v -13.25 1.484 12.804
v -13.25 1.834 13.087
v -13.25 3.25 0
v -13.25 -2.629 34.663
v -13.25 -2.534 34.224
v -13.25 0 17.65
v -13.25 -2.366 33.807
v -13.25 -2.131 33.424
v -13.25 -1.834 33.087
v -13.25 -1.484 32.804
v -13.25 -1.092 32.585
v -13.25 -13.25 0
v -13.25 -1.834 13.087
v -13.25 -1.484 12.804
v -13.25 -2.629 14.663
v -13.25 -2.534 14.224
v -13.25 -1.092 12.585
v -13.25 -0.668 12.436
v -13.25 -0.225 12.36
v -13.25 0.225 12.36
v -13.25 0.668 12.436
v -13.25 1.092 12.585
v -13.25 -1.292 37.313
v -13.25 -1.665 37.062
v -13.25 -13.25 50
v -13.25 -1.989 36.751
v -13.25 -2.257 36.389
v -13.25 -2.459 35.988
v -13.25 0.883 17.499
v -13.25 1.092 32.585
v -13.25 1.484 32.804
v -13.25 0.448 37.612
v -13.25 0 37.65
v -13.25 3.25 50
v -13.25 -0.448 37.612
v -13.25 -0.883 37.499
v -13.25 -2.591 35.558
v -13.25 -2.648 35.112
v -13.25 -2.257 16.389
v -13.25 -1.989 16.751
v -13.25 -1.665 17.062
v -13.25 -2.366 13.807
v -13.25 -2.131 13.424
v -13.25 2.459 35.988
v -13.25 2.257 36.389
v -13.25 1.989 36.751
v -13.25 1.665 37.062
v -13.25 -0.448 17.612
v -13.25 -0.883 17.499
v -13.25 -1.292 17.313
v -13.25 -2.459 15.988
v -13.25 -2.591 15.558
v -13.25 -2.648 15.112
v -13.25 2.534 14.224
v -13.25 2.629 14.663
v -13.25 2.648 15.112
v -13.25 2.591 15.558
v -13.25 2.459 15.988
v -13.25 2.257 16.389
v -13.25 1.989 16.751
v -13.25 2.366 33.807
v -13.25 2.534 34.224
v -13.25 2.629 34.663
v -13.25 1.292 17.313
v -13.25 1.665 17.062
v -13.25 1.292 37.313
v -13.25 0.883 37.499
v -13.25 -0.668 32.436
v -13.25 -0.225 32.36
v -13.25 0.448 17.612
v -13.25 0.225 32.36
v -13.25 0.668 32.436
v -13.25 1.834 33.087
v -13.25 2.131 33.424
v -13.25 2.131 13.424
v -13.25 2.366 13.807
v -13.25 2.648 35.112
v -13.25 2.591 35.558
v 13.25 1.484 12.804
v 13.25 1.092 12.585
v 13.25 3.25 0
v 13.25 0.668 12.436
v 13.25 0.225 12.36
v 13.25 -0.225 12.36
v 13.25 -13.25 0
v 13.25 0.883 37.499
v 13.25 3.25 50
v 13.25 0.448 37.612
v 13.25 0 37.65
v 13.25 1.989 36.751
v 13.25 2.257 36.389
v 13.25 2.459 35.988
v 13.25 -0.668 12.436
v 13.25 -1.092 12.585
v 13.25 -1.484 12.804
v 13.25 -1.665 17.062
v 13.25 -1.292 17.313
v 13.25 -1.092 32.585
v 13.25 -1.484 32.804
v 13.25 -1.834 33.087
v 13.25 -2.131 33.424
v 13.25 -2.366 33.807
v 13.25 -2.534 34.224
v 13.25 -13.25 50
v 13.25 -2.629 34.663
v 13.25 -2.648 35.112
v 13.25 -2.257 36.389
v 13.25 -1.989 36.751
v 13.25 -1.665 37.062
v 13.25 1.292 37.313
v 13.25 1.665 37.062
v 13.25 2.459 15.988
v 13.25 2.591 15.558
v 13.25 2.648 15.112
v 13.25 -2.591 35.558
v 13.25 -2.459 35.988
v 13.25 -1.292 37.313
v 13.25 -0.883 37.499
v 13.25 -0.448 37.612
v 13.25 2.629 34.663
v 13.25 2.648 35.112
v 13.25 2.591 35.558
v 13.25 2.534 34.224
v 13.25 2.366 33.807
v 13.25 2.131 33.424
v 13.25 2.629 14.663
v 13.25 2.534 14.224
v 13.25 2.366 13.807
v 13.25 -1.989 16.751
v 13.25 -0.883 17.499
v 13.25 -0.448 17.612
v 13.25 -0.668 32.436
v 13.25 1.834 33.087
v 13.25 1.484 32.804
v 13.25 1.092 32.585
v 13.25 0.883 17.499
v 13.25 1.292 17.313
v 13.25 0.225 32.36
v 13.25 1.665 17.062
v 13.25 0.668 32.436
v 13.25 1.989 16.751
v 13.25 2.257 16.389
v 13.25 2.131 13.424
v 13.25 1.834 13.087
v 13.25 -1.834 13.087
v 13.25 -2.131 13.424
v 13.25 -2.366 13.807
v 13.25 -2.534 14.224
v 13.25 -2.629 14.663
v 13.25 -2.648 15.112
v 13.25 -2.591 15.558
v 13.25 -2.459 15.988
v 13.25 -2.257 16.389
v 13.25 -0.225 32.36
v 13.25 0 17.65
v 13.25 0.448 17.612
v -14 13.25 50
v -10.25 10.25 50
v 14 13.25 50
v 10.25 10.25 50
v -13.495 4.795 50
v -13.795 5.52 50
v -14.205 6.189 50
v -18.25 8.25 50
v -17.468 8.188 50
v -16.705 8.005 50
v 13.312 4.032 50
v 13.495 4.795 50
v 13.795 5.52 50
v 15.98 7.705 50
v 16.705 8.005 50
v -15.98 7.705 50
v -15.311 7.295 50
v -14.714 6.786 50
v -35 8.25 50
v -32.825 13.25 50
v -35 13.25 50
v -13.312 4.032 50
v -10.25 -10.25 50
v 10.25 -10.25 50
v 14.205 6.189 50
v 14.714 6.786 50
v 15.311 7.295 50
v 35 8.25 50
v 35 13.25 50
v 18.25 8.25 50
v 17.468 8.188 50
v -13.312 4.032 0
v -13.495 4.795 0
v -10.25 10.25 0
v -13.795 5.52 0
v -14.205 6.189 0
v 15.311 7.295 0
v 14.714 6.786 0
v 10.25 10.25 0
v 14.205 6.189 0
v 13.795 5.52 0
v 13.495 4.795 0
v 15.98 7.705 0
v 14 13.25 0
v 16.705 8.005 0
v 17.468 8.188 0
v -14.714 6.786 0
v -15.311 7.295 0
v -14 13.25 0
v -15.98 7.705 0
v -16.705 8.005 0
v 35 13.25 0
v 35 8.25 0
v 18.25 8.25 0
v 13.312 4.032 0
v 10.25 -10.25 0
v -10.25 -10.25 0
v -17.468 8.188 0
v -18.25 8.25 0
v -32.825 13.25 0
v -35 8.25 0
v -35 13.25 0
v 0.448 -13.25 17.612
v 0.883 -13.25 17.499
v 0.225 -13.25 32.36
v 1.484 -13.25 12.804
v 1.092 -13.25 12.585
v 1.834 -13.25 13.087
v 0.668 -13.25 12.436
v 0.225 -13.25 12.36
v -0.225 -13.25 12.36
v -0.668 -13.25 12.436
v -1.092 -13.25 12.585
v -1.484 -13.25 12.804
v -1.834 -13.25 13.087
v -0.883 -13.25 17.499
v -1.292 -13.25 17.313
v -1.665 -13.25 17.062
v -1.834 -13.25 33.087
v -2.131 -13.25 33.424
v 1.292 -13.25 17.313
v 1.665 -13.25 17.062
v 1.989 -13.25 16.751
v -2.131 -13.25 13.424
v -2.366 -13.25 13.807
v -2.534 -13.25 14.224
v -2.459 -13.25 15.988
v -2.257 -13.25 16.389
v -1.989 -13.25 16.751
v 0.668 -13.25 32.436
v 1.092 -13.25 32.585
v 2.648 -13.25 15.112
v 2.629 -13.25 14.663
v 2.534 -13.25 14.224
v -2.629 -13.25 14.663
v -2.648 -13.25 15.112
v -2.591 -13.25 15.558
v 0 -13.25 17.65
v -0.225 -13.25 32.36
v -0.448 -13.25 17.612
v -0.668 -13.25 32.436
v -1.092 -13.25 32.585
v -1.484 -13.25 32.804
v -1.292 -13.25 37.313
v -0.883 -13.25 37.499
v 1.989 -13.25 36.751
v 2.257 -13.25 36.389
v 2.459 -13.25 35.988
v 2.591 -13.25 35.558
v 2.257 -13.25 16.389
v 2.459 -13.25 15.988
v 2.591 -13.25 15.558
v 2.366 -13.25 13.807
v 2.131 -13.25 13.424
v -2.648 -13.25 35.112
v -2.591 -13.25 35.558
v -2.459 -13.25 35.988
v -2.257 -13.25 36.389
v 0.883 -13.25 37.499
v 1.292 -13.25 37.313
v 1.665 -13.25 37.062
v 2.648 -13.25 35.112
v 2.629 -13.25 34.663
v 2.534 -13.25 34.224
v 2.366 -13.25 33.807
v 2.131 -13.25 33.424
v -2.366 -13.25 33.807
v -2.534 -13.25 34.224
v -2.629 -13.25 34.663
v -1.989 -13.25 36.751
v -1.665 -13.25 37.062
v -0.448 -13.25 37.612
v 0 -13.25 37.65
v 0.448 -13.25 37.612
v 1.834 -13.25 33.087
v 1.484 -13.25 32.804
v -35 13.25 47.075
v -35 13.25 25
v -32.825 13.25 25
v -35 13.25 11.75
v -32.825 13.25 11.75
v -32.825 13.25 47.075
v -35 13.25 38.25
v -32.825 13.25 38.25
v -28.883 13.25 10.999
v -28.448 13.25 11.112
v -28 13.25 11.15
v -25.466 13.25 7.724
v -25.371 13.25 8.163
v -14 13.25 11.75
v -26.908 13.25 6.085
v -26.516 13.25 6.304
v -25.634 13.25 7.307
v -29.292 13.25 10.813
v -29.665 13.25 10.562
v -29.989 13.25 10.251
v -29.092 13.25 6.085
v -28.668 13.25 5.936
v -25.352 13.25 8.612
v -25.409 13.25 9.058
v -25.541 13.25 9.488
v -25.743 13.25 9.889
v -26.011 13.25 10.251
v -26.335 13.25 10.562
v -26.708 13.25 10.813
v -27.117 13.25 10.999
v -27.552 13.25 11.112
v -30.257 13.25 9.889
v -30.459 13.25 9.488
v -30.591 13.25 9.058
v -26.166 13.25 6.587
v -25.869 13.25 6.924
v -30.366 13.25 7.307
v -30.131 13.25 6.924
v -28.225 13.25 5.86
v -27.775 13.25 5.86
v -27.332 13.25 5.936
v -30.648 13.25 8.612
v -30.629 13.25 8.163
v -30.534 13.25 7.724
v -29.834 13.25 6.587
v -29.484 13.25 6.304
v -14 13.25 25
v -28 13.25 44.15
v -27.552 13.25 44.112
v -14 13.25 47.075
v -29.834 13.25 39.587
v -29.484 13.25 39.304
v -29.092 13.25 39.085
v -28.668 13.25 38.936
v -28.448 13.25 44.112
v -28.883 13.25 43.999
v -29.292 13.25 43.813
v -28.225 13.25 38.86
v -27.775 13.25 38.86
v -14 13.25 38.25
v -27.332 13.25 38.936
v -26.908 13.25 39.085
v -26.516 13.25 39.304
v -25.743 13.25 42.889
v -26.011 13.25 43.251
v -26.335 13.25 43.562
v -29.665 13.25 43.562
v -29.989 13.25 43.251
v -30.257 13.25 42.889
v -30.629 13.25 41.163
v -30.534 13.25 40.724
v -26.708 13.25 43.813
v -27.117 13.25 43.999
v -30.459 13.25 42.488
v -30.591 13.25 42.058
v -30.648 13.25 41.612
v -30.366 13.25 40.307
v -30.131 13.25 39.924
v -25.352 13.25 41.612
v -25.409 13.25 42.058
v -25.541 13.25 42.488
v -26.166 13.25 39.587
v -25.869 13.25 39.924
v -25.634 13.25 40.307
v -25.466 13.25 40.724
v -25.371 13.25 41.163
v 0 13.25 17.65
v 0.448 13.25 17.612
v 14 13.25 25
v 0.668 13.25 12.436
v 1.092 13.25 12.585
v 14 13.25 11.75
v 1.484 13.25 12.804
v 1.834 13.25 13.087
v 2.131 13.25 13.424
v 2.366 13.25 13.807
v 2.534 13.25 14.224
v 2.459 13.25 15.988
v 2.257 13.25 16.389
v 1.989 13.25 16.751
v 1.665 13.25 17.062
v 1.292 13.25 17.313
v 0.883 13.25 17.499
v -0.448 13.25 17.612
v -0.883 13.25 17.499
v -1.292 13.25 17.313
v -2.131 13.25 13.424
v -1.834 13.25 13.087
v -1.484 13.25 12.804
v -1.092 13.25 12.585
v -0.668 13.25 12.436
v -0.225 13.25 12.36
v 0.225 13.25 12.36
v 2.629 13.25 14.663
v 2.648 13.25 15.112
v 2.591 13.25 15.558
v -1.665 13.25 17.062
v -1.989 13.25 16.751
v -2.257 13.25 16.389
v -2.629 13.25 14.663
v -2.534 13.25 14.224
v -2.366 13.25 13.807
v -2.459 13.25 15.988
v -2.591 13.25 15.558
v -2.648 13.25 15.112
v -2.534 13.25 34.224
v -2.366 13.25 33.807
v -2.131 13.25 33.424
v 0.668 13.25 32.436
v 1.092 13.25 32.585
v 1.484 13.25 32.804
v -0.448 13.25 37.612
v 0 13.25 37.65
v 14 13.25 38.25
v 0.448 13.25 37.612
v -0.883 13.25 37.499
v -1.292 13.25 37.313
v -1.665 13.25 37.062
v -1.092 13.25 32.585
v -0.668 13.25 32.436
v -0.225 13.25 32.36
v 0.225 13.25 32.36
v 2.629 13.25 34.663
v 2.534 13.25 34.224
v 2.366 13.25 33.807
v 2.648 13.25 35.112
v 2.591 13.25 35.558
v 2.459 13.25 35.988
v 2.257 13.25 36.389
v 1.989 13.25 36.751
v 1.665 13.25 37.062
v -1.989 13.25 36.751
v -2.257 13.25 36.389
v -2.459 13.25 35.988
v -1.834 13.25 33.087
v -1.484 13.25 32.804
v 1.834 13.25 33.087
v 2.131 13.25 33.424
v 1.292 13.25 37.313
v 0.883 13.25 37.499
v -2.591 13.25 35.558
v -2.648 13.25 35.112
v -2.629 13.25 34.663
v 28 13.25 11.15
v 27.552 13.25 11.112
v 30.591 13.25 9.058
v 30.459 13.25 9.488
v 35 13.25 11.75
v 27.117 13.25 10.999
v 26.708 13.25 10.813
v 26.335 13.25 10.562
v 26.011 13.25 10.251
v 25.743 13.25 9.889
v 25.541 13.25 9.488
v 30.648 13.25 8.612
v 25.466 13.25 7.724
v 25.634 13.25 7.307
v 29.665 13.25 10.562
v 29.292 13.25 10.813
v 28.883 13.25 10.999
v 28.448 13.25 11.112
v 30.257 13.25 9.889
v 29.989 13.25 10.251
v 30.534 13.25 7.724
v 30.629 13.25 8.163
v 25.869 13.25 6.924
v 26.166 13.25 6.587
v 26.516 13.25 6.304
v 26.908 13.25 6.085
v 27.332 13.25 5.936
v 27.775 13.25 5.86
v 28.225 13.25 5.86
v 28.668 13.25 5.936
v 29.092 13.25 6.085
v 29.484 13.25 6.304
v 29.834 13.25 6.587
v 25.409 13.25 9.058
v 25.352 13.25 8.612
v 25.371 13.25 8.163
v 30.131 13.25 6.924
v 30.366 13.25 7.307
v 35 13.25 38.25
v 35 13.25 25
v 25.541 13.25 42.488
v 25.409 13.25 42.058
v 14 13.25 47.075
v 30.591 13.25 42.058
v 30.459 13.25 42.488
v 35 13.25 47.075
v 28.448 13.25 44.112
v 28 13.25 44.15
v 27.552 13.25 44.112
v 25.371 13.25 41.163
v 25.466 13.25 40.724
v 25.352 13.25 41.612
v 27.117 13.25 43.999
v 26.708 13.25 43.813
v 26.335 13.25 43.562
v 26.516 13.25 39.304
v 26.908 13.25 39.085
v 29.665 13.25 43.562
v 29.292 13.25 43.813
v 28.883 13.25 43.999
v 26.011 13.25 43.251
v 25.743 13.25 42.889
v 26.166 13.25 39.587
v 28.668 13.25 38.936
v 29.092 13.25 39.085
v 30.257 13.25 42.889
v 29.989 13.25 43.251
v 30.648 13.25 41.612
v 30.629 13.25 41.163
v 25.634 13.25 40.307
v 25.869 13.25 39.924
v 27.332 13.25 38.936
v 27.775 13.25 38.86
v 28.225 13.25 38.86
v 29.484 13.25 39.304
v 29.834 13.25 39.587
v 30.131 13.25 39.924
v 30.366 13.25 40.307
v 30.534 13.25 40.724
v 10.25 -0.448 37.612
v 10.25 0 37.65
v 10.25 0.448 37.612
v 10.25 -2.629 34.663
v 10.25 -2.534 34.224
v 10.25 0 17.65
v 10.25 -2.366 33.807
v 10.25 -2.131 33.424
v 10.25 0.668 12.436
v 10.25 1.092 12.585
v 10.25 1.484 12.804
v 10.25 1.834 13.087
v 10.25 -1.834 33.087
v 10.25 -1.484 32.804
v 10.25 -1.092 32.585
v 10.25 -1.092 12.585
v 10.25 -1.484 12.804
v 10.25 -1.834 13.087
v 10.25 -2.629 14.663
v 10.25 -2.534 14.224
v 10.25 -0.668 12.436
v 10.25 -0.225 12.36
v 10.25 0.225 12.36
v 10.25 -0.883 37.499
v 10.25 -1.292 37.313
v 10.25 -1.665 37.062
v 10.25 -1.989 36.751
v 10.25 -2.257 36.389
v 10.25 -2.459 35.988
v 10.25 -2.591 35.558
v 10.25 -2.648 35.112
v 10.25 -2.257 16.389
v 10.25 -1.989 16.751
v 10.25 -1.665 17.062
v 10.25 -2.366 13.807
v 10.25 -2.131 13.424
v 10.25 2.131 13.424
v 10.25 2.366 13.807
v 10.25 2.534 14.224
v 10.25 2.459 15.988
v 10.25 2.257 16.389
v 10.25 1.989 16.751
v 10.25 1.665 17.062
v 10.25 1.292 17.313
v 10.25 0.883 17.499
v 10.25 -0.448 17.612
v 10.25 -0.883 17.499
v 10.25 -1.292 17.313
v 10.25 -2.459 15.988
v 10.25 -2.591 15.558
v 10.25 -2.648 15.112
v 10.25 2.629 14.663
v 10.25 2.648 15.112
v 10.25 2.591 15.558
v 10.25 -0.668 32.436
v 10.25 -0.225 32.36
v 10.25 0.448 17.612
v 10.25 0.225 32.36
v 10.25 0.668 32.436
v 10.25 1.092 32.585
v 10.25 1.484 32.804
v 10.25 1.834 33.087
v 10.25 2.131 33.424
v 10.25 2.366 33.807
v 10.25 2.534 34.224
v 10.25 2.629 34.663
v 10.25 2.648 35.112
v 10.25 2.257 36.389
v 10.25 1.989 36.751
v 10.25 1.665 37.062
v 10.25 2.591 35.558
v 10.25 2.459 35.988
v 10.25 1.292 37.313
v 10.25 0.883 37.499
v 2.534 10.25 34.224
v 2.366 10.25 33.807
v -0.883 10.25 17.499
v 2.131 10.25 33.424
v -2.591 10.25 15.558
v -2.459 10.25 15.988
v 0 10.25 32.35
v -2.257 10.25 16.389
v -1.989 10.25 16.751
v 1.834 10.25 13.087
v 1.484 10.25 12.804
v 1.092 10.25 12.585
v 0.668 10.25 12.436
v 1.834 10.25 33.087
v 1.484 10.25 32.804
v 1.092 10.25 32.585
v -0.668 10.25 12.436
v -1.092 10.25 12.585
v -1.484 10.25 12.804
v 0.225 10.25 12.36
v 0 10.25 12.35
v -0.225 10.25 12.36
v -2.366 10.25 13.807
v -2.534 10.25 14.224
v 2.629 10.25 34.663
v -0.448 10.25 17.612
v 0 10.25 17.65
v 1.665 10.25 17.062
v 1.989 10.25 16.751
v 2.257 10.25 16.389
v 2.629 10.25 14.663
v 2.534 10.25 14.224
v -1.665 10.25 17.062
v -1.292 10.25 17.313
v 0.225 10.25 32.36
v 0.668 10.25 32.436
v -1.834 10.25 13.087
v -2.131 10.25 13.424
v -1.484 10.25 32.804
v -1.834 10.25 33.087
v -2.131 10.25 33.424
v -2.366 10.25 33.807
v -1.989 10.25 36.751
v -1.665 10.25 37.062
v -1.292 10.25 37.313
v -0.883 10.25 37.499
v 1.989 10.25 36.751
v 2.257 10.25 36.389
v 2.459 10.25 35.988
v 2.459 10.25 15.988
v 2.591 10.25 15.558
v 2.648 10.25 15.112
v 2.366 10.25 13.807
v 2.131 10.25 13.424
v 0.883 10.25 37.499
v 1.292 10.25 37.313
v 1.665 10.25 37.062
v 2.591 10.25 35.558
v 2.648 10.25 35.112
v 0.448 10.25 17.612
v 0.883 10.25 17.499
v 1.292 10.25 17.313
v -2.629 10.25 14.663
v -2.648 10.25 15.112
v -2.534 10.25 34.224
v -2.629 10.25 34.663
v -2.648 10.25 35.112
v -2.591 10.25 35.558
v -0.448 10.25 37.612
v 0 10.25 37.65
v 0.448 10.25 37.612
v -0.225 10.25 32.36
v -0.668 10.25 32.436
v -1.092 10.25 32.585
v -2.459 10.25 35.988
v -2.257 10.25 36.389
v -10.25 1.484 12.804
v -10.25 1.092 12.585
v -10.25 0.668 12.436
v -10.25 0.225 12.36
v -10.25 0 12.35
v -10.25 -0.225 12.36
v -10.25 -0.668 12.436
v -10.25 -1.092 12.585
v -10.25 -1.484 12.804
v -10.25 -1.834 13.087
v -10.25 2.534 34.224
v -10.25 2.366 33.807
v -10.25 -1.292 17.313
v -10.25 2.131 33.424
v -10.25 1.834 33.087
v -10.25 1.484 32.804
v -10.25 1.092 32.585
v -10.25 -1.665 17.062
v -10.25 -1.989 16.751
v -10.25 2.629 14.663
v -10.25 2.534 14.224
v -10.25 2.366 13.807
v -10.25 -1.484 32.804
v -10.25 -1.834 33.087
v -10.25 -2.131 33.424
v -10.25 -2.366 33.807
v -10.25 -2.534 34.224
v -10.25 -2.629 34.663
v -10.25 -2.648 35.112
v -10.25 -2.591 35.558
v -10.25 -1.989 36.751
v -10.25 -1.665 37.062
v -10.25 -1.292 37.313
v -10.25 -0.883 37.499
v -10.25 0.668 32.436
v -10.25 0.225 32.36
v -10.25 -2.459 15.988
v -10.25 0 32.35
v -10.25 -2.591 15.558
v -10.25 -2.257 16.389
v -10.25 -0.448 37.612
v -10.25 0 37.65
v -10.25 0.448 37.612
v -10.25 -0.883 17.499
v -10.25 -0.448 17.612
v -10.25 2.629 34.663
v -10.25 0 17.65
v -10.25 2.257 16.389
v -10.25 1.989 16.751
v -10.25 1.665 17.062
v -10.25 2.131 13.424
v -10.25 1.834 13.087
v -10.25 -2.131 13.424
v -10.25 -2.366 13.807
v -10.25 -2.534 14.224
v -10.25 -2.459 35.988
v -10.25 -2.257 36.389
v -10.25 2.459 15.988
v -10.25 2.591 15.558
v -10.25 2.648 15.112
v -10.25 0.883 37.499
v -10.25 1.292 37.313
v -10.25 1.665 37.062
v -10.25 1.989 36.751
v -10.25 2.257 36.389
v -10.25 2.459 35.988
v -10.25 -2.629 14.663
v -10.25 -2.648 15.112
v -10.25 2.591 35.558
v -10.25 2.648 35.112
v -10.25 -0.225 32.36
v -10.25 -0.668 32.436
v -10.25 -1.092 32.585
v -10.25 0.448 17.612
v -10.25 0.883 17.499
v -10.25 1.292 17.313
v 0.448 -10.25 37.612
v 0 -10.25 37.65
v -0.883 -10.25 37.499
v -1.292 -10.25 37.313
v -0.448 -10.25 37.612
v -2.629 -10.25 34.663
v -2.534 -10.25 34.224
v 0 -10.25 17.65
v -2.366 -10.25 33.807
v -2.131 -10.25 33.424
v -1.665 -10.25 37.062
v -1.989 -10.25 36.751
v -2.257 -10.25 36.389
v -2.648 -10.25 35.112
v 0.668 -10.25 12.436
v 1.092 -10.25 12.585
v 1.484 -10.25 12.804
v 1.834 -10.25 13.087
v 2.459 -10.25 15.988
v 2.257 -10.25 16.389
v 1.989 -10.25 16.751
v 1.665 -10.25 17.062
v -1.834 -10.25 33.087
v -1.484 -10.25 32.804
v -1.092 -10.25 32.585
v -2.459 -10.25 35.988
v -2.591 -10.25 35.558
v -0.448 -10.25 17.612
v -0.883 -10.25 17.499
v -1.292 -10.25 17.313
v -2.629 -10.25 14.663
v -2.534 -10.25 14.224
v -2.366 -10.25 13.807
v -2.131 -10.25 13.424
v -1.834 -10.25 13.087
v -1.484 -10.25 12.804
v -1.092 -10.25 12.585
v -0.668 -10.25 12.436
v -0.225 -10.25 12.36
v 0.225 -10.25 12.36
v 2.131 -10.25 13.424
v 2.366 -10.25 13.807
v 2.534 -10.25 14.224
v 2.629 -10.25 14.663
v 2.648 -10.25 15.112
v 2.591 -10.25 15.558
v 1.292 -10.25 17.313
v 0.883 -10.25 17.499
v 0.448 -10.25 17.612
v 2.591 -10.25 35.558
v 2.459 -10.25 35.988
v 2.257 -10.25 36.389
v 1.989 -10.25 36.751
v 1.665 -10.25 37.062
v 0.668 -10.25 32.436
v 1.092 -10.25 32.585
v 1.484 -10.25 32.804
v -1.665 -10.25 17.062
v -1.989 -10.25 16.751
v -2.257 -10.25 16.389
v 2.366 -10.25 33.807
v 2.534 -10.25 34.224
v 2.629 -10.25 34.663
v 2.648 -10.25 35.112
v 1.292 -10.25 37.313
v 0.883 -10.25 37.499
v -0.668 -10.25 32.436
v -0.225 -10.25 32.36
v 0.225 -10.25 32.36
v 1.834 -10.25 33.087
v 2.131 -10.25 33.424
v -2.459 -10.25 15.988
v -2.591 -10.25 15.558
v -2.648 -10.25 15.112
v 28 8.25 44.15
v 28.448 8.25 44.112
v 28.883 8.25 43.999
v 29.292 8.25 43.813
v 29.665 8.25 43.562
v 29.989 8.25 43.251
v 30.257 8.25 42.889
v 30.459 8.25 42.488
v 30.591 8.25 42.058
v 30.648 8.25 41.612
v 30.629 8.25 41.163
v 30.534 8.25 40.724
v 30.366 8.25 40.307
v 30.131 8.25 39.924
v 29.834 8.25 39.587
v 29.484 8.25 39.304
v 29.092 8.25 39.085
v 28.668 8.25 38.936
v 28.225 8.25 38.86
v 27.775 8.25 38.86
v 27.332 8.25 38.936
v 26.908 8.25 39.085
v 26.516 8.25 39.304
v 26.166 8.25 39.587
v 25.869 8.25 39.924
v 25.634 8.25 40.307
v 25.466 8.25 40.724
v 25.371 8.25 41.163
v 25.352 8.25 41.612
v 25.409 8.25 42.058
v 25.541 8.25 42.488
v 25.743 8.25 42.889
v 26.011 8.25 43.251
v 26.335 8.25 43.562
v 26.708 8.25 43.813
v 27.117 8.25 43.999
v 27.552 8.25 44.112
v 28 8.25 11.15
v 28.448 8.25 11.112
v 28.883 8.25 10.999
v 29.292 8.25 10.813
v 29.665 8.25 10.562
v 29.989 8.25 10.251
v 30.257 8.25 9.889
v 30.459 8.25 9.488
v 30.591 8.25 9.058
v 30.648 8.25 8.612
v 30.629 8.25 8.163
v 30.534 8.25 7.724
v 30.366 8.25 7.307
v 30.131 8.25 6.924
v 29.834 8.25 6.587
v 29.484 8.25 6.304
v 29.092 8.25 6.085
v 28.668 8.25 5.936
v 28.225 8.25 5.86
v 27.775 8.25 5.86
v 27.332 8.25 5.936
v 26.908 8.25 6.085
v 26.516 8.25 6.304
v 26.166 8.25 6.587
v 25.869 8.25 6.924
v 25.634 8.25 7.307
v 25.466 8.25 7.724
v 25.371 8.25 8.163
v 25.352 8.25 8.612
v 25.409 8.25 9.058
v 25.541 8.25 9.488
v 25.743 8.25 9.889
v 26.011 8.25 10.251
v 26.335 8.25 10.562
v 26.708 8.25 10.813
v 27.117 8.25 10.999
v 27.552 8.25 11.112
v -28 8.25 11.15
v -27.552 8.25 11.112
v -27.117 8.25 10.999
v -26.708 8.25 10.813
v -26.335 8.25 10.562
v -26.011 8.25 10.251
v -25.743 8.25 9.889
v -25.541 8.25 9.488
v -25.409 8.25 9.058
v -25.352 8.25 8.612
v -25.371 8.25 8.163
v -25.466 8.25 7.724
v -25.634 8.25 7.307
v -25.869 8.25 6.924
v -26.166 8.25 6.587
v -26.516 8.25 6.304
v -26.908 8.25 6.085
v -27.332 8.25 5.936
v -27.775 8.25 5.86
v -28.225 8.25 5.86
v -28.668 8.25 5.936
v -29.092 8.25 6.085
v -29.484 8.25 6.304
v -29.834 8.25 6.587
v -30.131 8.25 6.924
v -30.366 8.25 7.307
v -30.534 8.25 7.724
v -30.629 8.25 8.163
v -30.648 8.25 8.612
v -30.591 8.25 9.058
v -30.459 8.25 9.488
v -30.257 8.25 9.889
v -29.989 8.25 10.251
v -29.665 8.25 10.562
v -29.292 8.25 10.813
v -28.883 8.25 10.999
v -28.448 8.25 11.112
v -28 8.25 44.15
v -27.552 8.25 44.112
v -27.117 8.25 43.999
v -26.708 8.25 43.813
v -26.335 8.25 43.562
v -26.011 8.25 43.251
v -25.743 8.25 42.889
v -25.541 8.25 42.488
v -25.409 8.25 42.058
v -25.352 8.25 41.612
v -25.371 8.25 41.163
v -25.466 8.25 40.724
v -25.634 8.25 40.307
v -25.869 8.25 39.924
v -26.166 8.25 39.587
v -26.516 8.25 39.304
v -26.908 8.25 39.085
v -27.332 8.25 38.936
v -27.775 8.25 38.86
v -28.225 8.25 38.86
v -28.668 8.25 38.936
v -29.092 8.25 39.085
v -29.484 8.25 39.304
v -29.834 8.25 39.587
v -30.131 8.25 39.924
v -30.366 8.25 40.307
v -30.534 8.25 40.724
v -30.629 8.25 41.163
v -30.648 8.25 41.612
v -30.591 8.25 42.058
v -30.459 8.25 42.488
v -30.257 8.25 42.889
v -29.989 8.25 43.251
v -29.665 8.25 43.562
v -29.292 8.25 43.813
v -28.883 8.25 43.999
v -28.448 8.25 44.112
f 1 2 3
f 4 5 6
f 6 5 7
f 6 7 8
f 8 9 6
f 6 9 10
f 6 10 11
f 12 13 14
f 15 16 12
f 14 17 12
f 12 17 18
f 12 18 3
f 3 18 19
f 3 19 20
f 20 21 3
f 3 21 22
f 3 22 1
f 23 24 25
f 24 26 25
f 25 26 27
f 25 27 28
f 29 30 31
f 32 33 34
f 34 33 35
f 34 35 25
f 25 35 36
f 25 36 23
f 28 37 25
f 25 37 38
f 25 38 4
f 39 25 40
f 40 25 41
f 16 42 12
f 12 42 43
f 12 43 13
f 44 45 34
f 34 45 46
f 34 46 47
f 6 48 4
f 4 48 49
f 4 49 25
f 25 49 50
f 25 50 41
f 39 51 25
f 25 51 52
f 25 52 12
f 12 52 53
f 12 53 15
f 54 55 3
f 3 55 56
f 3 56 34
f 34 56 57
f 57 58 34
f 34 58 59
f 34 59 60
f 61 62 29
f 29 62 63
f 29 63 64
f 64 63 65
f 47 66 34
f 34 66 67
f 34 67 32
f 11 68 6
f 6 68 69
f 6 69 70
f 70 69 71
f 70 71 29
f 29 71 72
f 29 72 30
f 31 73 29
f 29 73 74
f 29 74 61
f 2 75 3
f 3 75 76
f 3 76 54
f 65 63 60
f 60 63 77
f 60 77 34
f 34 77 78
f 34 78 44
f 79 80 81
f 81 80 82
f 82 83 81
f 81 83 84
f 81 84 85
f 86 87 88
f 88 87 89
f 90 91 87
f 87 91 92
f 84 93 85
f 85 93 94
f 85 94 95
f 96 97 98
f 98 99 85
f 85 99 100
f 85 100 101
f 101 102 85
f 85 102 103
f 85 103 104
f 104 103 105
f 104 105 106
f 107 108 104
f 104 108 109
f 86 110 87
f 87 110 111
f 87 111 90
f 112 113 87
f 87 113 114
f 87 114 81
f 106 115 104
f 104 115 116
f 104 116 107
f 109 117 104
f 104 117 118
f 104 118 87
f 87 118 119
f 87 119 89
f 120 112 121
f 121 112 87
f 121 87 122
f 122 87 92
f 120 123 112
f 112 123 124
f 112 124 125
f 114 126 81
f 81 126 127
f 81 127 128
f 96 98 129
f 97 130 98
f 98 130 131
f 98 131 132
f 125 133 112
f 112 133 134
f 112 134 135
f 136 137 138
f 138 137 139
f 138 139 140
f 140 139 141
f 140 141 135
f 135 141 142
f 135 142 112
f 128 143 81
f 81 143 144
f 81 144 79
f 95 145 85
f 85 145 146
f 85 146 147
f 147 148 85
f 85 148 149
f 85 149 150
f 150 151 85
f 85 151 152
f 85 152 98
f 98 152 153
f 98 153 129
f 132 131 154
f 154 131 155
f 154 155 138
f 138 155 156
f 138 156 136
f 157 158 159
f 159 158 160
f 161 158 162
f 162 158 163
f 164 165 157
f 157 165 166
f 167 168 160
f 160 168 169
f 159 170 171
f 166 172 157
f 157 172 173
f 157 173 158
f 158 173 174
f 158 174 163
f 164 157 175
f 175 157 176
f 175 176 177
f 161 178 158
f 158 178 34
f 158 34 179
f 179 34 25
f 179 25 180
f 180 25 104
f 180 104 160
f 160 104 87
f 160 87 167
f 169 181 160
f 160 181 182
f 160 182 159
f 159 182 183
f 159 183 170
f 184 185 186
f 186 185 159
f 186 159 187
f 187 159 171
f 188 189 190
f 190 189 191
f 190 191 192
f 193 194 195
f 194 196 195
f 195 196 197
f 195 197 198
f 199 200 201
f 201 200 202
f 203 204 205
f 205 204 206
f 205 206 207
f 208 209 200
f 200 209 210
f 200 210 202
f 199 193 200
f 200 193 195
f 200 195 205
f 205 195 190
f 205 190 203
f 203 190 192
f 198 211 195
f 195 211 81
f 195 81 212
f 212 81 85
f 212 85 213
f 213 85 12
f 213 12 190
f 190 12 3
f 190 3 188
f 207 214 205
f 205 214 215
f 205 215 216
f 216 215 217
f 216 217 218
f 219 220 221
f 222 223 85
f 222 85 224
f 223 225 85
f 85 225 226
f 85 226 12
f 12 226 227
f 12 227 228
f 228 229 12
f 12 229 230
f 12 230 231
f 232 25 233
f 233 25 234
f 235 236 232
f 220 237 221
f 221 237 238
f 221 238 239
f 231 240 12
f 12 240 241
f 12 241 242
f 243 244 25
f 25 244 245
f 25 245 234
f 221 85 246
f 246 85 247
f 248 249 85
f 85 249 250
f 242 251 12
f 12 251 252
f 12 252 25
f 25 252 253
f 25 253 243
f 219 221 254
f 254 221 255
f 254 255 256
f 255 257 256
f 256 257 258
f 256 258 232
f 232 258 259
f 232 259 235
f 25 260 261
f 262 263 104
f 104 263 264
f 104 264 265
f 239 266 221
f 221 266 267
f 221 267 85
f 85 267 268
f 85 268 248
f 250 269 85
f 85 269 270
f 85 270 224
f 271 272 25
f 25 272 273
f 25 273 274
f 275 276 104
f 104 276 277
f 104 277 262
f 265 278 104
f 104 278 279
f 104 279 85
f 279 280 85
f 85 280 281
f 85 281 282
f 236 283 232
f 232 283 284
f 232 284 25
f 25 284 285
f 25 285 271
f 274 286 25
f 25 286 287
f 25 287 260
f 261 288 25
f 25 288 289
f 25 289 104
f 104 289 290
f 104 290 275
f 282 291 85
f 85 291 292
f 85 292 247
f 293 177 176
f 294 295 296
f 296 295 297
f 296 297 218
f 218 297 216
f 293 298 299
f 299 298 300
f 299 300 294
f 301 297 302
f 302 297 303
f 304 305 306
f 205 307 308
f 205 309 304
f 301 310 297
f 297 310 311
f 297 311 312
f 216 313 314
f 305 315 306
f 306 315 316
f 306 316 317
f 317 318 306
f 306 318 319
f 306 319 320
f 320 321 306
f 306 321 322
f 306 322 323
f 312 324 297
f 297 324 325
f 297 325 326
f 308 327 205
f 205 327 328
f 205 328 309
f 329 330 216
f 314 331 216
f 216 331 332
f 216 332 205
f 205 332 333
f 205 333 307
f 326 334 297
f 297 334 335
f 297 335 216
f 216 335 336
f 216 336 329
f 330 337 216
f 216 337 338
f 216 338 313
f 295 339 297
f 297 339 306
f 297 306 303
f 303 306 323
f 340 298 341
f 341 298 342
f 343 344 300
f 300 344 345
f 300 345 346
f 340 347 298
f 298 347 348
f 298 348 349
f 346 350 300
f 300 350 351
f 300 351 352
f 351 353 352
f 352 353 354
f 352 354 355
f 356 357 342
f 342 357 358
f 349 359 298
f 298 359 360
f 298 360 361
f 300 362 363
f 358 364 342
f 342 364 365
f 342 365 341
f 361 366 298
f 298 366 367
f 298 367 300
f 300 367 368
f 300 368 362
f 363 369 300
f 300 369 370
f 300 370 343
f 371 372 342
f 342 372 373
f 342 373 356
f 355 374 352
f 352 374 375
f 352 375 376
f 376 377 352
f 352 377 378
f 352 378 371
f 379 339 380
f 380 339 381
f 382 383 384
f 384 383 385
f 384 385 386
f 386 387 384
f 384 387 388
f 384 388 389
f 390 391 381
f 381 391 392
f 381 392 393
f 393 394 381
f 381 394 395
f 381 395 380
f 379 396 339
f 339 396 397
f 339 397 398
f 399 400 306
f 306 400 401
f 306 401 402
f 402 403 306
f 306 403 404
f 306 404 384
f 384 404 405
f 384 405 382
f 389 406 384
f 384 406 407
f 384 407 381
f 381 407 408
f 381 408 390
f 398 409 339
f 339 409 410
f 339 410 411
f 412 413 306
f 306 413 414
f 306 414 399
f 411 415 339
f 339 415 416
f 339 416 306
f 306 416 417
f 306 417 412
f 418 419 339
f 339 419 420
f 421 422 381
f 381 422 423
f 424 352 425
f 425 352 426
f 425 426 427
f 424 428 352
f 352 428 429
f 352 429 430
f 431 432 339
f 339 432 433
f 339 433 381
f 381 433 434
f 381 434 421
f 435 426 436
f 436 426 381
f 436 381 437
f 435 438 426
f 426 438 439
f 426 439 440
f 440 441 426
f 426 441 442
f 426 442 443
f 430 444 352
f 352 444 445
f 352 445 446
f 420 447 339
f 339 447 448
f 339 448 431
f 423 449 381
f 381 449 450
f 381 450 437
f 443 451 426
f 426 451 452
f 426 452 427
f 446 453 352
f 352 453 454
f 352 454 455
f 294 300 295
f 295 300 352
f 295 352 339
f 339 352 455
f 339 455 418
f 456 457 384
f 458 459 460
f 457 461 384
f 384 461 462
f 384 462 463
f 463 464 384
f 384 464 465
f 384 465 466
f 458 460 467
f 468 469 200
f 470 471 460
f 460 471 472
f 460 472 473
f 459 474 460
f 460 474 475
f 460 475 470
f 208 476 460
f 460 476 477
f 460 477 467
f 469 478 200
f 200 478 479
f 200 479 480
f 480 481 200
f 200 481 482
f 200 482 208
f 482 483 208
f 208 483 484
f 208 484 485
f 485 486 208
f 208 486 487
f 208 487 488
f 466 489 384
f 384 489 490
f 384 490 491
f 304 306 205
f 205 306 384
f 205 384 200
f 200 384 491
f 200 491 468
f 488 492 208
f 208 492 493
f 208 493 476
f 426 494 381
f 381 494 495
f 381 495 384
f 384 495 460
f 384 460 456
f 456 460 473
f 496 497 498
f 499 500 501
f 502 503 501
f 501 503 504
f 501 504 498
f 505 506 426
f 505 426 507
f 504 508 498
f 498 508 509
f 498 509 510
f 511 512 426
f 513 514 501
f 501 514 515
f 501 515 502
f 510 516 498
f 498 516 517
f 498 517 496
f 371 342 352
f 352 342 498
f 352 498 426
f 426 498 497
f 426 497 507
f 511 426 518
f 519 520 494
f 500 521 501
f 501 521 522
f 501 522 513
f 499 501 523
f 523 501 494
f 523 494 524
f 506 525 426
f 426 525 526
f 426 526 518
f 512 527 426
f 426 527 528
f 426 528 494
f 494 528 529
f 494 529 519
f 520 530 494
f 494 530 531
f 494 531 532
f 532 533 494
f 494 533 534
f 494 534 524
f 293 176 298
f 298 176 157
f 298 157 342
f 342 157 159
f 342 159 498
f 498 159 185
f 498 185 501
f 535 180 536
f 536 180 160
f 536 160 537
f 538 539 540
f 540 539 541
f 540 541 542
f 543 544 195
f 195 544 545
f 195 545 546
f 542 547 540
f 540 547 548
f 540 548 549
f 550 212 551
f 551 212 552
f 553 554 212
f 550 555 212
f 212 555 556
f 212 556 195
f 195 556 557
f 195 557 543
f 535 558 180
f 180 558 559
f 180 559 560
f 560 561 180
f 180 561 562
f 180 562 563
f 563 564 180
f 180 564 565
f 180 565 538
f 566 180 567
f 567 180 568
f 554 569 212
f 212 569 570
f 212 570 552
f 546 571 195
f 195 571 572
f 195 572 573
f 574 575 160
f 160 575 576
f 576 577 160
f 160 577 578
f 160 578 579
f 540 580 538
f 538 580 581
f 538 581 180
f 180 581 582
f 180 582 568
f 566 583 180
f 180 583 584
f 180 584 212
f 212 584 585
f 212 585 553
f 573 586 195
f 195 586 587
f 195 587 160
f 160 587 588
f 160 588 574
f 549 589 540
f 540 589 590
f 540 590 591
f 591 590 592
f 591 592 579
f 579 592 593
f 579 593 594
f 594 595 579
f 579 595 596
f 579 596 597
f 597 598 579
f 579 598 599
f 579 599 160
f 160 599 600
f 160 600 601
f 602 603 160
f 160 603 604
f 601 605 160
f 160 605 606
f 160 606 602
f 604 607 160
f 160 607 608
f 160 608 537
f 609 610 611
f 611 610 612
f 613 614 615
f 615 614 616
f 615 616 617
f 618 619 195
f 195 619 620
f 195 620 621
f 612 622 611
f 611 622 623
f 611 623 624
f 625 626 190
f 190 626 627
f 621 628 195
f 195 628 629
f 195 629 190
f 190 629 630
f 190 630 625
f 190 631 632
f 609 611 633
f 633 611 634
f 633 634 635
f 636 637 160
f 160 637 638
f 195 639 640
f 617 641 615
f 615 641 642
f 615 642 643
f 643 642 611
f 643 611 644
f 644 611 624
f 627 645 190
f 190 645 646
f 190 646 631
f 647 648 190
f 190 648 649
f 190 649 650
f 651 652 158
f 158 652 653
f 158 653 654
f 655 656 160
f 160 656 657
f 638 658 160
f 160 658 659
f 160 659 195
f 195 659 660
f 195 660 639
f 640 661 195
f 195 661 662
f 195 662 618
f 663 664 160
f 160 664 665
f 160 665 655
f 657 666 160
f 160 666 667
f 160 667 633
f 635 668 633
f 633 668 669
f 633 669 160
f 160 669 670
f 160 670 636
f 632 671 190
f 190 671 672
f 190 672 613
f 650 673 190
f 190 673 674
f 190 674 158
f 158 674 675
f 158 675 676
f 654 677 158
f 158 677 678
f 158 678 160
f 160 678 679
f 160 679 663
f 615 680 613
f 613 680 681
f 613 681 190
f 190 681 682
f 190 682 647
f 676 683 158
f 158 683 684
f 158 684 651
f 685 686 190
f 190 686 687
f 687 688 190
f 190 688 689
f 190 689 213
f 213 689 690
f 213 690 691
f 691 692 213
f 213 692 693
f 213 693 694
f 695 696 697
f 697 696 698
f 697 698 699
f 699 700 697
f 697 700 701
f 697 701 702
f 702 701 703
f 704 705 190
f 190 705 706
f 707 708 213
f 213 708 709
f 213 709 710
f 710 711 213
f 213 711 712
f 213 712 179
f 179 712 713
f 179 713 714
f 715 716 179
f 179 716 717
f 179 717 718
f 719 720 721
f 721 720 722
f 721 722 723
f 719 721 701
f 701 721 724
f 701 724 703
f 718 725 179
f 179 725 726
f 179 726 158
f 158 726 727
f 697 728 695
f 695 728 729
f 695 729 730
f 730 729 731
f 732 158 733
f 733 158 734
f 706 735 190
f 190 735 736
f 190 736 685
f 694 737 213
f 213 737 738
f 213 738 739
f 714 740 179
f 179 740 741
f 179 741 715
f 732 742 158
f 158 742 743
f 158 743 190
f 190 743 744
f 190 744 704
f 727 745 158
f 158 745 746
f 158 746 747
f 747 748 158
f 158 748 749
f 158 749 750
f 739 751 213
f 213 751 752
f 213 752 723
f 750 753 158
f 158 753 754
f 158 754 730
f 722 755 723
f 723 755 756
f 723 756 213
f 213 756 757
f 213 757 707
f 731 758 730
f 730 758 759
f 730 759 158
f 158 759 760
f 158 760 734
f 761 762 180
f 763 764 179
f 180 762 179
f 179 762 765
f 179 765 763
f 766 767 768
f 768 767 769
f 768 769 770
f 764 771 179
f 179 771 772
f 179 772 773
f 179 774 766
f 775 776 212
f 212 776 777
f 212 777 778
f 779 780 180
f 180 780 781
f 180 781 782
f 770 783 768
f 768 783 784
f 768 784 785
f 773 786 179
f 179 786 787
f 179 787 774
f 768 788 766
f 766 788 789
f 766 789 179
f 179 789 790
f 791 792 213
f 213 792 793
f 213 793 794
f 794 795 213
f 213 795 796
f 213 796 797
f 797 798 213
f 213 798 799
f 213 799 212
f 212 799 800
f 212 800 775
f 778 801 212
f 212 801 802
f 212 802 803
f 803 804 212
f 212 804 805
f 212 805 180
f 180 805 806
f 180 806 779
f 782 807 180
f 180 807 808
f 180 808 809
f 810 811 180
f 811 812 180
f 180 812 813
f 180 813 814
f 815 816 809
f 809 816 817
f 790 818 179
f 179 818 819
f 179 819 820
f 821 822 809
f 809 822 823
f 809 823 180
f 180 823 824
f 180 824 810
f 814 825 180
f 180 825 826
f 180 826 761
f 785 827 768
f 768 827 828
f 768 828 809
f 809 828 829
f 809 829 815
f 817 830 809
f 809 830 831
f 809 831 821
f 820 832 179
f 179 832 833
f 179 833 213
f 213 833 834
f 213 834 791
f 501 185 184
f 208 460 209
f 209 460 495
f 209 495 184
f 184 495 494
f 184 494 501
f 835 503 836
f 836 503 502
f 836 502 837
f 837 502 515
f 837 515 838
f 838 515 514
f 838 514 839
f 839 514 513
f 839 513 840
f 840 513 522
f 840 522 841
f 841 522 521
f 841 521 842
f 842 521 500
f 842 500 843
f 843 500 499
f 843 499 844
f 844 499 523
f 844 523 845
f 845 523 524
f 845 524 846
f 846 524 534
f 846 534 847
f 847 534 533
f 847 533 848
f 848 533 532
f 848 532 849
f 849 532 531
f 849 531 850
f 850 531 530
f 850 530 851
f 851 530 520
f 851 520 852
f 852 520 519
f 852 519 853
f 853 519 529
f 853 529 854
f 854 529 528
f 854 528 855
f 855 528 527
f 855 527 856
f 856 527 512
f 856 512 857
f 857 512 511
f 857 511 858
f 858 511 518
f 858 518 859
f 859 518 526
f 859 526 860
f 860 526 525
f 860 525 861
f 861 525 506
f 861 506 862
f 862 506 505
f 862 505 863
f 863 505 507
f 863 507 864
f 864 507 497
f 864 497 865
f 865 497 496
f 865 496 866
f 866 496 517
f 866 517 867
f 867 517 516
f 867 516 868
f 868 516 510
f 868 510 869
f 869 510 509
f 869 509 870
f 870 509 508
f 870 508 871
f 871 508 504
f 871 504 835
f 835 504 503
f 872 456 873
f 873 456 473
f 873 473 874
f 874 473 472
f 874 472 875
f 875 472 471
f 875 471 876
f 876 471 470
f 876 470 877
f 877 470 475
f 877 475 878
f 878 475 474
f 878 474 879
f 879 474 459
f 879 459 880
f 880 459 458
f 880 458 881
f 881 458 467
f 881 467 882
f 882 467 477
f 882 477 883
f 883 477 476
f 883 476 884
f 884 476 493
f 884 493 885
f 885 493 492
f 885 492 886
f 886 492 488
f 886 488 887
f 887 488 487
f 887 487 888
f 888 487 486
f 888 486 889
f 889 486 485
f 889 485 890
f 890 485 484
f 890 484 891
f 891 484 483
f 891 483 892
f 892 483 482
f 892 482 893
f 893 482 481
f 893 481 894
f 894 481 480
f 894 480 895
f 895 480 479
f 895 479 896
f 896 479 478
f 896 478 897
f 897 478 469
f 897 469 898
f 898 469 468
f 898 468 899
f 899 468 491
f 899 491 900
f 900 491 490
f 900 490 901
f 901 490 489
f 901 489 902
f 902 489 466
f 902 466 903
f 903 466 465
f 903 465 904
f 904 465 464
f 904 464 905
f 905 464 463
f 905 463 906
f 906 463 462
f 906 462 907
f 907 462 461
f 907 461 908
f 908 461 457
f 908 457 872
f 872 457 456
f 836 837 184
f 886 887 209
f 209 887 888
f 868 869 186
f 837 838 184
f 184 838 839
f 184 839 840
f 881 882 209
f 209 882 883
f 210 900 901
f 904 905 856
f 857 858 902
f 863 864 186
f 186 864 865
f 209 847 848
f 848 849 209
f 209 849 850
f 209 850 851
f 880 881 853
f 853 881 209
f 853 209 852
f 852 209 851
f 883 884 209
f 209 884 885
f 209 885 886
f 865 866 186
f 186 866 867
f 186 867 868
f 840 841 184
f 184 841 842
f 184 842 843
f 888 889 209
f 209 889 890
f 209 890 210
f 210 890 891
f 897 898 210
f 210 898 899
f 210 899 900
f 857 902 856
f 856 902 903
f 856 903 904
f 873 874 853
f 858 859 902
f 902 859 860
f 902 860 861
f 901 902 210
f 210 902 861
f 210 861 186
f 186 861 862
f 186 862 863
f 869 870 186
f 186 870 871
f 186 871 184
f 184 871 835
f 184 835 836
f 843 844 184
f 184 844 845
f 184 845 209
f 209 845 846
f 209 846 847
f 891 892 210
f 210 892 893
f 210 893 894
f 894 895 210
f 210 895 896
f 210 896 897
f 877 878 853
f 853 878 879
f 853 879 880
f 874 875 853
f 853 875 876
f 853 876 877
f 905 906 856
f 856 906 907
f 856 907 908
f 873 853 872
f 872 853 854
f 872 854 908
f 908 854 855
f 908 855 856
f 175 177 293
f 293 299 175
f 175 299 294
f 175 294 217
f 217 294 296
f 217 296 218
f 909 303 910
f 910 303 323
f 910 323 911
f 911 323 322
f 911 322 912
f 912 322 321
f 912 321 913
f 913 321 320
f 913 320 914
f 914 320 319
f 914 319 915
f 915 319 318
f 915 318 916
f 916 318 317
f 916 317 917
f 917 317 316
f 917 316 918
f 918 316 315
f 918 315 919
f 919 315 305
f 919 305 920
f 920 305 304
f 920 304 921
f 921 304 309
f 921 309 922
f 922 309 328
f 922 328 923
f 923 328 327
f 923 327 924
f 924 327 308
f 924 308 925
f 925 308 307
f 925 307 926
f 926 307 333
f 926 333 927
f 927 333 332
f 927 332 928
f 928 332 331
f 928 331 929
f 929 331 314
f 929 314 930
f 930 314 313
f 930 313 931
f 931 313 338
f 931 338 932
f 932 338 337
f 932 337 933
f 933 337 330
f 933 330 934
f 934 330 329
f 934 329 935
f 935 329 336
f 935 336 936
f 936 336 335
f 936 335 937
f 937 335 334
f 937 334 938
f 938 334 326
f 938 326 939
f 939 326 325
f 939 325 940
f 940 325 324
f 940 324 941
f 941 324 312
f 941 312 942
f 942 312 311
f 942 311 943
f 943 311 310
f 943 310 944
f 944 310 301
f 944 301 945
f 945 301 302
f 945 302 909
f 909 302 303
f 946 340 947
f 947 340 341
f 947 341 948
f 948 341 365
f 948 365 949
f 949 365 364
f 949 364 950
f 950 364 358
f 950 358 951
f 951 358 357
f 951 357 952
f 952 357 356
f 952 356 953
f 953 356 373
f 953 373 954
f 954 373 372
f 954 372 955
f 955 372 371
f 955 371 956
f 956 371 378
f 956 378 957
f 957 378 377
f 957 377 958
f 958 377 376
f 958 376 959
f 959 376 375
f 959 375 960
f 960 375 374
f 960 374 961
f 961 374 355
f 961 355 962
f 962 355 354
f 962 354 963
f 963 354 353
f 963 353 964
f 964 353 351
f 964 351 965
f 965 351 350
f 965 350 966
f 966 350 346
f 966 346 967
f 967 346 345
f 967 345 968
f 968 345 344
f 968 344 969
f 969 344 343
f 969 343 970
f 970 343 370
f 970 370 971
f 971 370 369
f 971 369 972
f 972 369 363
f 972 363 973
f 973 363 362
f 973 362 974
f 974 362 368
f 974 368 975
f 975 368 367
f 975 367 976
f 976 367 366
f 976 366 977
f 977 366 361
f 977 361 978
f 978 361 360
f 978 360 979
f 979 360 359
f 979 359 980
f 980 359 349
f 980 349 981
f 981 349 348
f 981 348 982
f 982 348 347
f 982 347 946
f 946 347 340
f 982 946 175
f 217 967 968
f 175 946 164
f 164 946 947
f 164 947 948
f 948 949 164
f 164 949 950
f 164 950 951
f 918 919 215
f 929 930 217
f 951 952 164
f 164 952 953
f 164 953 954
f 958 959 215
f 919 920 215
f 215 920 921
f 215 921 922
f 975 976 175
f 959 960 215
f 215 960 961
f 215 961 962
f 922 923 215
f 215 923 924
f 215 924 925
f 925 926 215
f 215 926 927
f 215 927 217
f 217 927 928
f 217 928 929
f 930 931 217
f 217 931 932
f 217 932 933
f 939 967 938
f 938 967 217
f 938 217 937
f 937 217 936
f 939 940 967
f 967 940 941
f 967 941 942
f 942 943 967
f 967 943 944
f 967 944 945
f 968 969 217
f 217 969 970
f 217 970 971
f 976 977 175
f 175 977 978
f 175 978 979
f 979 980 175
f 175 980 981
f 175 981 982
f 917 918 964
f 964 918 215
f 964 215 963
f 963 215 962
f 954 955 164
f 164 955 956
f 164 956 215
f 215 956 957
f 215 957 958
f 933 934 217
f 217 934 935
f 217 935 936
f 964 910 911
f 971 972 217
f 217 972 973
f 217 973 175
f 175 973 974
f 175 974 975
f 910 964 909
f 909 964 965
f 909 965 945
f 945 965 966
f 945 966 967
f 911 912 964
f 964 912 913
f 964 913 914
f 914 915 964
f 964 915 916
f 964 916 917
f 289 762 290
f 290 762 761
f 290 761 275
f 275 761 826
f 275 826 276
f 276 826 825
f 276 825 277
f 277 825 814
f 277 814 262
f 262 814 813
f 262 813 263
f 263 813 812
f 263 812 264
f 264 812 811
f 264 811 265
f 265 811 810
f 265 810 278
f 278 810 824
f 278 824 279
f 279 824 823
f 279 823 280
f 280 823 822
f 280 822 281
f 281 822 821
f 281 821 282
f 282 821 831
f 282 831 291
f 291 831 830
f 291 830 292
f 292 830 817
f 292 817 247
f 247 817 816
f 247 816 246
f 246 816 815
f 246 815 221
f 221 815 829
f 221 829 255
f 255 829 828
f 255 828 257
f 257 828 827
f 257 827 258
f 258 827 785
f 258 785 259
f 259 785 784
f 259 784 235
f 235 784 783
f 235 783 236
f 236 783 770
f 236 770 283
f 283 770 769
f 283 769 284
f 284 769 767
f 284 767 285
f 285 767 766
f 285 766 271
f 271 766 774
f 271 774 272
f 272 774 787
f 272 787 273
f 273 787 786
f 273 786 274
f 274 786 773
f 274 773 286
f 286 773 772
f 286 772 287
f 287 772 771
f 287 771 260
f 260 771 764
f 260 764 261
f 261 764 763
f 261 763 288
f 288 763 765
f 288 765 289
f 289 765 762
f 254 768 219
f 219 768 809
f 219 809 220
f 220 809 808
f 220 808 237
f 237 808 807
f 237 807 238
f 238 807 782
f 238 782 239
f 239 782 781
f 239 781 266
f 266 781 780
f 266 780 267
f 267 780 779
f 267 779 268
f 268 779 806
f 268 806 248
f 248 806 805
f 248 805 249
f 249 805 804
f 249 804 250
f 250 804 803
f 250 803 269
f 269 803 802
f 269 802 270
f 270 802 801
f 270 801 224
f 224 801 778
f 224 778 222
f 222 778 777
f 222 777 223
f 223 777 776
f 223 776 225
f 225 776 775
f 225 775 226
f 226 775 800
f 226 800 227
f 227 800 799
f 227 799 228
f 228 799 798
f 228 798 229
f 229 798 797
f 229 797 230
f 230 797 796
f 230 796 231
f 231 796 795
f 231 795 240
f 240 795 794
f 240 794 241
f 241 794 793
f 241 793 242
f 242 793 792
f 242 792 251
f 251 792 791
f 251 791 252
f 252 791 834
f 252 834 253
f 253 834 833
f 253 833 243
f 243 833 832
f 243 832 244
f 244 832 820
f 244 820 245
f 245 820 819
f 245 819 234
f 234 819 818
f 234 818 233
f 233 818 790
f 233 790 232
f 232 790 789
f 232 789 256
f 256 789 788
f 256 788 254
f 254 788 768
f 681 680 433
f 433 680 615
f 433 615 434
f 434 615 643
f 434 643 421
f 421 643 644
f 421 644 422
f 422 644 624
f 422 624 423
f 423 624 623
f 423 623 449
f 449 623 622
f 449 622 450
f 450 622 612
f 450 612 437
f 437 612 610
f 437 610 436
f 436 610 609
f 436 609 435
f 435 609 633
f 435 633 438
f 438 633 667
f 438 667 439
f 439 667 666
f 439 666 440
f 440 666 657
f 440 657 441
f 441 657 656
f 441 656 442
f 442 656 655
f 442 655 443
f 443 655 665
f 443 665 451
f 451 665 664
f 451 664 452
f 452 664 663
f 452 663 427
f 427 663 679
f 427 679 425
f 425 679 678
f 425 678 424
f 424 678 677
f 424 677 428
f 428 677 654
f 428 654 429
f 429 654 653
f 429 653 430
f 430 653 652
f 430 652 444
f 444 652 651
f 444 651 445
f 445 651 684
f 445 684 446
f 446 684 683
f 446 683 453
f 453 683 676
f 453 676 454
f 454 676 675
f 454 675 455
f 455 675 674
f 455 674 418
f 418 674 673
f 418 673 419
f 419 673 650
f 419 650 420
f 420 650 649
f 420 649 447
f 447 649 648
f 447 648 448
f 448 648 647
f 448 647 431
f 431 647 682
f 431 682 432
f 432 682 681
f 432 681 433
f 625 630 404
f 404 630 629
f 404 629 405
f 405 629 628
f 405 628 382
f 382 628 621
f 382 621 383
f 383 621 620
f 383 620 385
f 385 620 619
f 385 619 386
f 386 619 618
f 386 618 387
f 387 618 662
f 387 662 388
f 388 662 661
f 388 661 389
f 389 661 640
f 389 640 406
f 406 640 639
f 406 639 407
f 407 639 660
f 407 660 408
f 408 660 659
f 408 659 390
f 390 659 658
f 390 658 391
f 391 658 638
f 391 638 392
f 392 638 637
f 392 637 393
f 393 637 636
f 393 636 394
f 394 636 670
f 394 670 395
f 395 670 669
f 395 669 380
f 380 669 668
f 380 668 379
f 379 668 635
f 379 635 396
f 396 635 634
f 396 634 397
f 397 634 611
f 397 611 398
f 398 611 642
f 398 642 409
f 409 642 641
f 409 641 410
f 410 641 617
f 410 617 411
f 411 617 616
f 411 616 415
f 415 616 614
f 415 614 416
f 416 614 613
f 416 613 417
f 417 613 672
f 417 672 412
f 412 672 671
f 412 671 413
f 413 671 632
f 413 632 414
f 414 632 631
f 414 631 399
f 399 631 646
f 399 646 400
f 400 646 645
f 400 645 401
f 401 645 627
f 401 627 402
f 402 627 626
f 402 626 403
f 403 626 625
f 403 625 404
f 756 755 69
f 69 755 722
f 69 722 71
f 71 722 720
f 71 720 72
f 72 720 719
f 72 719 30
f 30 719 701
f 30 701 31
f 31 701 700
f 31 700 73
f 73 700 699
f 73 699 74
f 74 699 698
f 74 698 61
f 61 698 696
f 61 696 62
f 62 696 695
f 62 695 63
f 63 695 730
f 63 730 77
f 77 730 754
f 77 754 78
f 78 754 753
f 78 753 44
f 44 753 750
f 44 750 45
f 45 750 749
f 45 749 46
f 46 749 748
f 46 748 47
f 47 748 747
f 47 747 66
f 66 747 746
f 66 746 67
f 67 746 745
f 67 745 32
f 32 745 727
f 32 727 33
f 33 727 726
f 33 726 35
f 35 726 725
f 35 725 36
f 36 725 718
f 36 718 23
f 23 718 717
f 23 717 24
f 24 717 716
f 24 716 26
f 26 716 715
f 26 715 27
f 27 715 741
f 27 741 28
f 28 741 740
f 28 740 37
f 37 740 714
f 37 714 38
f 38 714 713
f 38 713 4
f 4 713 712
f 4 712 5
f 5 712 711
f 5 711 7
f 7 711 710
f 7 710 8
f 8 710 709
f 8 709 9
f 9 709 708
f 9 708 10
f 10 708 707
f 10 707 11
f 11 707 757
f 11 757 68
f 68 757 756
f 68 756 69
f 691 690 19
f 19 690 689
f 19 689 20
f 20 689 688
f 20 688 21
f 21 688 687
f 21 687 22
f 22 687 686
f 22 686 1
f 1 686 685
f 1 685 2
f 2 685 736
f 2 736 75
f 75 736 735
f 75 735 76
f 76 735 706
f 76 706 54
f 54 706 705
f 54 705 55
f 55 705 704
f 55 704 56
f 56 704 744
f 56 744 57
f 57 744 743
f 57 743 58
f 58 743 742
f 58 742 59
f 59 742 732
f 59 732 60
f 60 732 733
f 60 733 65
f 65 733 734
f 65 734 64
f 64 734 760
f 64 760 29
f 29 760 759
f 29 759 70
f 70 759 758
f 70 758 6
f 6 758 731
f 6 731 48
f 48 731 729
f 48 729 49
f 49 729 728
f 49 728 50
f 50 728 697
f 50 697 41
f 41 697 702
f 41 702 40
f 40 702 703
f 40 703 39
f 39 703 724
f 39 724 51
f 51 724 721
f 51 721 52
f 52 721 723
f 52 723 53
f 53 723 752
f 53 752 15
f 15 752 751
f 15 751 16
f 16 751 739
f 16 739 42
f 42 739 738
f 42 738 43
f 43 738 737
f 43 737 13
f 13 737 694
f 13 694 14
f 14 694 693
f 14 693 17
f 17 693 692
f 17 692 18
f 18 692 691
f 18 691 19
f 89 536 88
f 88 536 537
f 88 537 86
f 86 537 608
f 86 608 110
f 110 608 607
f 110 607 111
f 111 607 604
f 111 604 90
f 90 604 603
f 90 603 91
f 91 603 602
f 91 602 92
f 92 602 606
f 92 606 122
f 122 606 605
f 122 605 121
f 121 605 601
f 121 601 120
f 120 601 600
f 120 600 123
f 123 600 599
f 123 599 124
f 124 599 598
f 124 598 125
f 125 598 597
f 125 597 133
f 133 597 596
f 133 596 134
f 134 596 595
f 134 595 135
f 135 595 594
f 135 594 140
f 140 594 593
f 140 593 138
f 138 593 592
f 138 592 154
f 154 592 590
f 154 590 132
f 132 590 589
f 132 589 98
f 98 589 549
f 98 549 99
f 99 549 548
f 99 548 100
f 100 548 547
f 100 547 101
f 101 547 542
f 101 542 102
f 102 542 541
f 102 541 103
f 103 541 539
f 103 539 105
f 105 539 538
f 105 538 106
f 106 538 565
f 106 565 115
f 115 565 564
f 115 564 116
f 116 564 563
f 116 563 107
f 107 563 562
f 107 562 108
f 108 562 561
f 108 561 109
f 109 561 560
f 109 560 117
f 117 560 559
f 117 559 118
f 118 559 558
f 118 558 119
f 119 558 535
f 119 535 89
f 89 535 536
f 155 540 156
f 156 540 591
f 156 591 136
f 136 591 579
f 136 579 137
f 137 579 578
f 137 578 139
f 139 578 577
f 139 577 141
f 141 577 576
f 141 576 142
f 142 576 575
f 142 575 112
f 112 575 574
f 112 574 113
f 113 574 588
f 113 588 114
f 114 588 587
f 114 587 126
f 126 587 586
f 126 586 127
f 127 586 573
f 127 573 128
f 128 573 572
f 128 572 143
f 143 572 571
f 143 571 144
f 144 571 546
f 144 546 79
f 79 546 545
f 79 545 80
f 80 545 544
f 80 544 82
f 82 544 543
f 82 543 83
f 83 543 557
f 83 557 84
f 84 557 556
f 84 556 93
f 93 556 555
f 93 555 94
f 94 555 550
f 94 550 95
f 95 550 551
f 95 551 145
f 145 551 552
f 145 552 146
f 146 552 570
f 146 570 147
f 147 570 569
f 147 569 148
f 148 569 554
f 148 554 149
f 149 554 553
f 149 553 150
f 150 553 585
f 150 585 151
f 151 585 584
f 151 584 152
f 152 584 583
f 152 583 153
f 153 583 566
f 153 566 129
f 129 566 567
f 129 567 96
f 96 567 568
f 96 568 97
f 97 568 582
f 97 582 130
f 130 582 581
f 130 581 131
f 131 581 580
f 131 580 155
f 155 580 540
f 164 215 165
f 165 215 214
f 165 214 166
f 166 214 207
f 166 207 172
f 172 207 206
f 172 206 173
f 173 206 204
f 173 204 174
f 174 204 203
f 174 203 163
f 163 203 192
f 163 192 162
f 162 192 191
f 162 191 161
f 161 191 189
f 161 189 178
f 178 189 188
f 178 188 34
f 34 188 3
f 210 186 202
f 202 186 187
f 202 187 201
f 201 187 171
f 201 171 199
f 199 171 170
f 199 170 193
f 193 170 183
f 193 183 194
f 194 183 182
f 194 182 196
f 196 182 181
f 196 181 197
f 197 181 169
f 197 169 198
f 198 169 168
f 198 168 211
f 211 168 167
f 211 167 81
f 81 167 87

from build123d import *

# Parameters (mm, degrees)
SKETCH_1_W          = 26.5
SKETCH_1_H          = 26.5
SKETCH_1_W_2        = 20.5
SKETCH_1_H_2        = 20.5
EXTRUDE_3_DEPTH     = 50
SKETCH_2_R          = 2.65
SKETCH_2_W          = 21.75
SKETCH_2_H          = 50
EXTRUDE_4_DEPTH     = 5
CUT_EXTRUDE_1_DEPTH = 67.537583365
SKETCH_4_R          = 2.65
CUT_EXTRUDE_2_DEPTH = 71.736306095
FILLET_1_R          = 5


with BuildPart() as part:
    # 草图1 → 凸台-拉伸3 (new body)
    with BuildSketch(Plane.XY):
        Rectangle(SKETCH_1_W, SKETCH_1_H)
        Rectangle(SKETCH_1_W_2, SKETCH_1_H_2, mode=Mode.SUBTRACT)
    extrude(amount=EXTRUDE_3_DEPTH)

    # 草图2 → 凸台-拉伸4 (add)
    # profile 1 of 2: a face of its own
    with BuildSketch(Plane(origin=(0, 13.25, 0), x_dir=(1, 0, 0), z_dir=(0, 1, 0))):
        Polygon((-13.25, -50), (-13.25, -25), (-13.25, 0), (-35, 0), (-35, -50), align=None)
        with Locations(Location((-28, -41.5, 0), (0, 0, 270))):
            Circle(SKETCH_2_R, mode=Mode.SUBTRACT)
        with Locations(Location((-28, -8.5, 0), (0, 0, 270))):
            Circle(SKETCH_2_R, mode=Mode.SUBTRACT)
    # profile 2 of 2: a face of its own
    with BuildSketch(Plane(origin=(0, 13.25, 0), x_dir=(1, 0, 0), z_dir=(0, 1, 0))):
        with Locations((24.125, -25)):
            Rectangle(SKETCH_2_W, SKETCH_2_H)
        with Locations(Location((28, -41.5, 0), (0, 0, 270))):
            Circle(SKETCH_2_R, mode=Mode.SUBTRACT)
        with Locations(Location((28, -8.5, 0), (0, 0, 270))):
            Circle(SKETCH_2_R, mode=Mode.SUBTRACT)
    extrude(amount=-EXTRUDE_4_DEPTH)

    # 草图3 → 切除-拉伸1 (cut, through all)
    with BuildSketch(Plane(origin=(0, 13.25, 0), x_dir=(1, 0, 0), z_dir=(0, 1, 0))):
        with BuildLine():
            ThreePointArc((2.65, -15), (1.87383297, -13.12616703), (0, -12.35))
            Line((0, -12.35), (0, -17.65))
            ThreePointArc((0, -17.65), (1.87383297, -16.87383297), (2.65, -15))
        make_face()
        with BuildLine():
            Line((0, -17.65), (0, -12.35))
            ThreePointArc((0, -12.35), (-2.65, -15), (0, -17.65))
        make_face()
        with BuildLine():
            ThreePointArc((2.65, -35), (1.87383297, -33.12616703), (0, -32.35))
            Line((0, -32.35), (0, -37.65))
            ThreePointArc((0, -37.65), (1.87383297, -36.87383297), (2.65, -35))
        make_face()
        with BuildLine():
            Line((0, -37.65), (0, -32.35))
            ThreePointArc((0, -32.35), (-2.65, -35), (0, -37.65))
        make_face()
    extrude(amount=-CUT_EXTRUDE_1_DEPTH, mode=Mode.SUBTRACT)

    # 草图4 → 切除-拉伸2 (cut, through all)
    with BuildSketch(Plane.ZY.offset(13.25)):
        with Locations((15, 0)):
            Circle(SKETCH_4_R)
        with Locations((35, 0)):
            Circle(SKETCH_4_R)
    extrude(amount=-CUT_EXTRUDE_2_DEPTH, mode=Mode.SUBTRACT)

    # 圆角1
    fillet_1_edges = [part.edges().sort_by_distance(p)[0] for p in [
        (-13.25, 8.25, 25),
        (13.25, 8.25, 25),
    ]]
    fillet(fillet_1_edges, radius=FILLET_1_R)


solid = part.part
